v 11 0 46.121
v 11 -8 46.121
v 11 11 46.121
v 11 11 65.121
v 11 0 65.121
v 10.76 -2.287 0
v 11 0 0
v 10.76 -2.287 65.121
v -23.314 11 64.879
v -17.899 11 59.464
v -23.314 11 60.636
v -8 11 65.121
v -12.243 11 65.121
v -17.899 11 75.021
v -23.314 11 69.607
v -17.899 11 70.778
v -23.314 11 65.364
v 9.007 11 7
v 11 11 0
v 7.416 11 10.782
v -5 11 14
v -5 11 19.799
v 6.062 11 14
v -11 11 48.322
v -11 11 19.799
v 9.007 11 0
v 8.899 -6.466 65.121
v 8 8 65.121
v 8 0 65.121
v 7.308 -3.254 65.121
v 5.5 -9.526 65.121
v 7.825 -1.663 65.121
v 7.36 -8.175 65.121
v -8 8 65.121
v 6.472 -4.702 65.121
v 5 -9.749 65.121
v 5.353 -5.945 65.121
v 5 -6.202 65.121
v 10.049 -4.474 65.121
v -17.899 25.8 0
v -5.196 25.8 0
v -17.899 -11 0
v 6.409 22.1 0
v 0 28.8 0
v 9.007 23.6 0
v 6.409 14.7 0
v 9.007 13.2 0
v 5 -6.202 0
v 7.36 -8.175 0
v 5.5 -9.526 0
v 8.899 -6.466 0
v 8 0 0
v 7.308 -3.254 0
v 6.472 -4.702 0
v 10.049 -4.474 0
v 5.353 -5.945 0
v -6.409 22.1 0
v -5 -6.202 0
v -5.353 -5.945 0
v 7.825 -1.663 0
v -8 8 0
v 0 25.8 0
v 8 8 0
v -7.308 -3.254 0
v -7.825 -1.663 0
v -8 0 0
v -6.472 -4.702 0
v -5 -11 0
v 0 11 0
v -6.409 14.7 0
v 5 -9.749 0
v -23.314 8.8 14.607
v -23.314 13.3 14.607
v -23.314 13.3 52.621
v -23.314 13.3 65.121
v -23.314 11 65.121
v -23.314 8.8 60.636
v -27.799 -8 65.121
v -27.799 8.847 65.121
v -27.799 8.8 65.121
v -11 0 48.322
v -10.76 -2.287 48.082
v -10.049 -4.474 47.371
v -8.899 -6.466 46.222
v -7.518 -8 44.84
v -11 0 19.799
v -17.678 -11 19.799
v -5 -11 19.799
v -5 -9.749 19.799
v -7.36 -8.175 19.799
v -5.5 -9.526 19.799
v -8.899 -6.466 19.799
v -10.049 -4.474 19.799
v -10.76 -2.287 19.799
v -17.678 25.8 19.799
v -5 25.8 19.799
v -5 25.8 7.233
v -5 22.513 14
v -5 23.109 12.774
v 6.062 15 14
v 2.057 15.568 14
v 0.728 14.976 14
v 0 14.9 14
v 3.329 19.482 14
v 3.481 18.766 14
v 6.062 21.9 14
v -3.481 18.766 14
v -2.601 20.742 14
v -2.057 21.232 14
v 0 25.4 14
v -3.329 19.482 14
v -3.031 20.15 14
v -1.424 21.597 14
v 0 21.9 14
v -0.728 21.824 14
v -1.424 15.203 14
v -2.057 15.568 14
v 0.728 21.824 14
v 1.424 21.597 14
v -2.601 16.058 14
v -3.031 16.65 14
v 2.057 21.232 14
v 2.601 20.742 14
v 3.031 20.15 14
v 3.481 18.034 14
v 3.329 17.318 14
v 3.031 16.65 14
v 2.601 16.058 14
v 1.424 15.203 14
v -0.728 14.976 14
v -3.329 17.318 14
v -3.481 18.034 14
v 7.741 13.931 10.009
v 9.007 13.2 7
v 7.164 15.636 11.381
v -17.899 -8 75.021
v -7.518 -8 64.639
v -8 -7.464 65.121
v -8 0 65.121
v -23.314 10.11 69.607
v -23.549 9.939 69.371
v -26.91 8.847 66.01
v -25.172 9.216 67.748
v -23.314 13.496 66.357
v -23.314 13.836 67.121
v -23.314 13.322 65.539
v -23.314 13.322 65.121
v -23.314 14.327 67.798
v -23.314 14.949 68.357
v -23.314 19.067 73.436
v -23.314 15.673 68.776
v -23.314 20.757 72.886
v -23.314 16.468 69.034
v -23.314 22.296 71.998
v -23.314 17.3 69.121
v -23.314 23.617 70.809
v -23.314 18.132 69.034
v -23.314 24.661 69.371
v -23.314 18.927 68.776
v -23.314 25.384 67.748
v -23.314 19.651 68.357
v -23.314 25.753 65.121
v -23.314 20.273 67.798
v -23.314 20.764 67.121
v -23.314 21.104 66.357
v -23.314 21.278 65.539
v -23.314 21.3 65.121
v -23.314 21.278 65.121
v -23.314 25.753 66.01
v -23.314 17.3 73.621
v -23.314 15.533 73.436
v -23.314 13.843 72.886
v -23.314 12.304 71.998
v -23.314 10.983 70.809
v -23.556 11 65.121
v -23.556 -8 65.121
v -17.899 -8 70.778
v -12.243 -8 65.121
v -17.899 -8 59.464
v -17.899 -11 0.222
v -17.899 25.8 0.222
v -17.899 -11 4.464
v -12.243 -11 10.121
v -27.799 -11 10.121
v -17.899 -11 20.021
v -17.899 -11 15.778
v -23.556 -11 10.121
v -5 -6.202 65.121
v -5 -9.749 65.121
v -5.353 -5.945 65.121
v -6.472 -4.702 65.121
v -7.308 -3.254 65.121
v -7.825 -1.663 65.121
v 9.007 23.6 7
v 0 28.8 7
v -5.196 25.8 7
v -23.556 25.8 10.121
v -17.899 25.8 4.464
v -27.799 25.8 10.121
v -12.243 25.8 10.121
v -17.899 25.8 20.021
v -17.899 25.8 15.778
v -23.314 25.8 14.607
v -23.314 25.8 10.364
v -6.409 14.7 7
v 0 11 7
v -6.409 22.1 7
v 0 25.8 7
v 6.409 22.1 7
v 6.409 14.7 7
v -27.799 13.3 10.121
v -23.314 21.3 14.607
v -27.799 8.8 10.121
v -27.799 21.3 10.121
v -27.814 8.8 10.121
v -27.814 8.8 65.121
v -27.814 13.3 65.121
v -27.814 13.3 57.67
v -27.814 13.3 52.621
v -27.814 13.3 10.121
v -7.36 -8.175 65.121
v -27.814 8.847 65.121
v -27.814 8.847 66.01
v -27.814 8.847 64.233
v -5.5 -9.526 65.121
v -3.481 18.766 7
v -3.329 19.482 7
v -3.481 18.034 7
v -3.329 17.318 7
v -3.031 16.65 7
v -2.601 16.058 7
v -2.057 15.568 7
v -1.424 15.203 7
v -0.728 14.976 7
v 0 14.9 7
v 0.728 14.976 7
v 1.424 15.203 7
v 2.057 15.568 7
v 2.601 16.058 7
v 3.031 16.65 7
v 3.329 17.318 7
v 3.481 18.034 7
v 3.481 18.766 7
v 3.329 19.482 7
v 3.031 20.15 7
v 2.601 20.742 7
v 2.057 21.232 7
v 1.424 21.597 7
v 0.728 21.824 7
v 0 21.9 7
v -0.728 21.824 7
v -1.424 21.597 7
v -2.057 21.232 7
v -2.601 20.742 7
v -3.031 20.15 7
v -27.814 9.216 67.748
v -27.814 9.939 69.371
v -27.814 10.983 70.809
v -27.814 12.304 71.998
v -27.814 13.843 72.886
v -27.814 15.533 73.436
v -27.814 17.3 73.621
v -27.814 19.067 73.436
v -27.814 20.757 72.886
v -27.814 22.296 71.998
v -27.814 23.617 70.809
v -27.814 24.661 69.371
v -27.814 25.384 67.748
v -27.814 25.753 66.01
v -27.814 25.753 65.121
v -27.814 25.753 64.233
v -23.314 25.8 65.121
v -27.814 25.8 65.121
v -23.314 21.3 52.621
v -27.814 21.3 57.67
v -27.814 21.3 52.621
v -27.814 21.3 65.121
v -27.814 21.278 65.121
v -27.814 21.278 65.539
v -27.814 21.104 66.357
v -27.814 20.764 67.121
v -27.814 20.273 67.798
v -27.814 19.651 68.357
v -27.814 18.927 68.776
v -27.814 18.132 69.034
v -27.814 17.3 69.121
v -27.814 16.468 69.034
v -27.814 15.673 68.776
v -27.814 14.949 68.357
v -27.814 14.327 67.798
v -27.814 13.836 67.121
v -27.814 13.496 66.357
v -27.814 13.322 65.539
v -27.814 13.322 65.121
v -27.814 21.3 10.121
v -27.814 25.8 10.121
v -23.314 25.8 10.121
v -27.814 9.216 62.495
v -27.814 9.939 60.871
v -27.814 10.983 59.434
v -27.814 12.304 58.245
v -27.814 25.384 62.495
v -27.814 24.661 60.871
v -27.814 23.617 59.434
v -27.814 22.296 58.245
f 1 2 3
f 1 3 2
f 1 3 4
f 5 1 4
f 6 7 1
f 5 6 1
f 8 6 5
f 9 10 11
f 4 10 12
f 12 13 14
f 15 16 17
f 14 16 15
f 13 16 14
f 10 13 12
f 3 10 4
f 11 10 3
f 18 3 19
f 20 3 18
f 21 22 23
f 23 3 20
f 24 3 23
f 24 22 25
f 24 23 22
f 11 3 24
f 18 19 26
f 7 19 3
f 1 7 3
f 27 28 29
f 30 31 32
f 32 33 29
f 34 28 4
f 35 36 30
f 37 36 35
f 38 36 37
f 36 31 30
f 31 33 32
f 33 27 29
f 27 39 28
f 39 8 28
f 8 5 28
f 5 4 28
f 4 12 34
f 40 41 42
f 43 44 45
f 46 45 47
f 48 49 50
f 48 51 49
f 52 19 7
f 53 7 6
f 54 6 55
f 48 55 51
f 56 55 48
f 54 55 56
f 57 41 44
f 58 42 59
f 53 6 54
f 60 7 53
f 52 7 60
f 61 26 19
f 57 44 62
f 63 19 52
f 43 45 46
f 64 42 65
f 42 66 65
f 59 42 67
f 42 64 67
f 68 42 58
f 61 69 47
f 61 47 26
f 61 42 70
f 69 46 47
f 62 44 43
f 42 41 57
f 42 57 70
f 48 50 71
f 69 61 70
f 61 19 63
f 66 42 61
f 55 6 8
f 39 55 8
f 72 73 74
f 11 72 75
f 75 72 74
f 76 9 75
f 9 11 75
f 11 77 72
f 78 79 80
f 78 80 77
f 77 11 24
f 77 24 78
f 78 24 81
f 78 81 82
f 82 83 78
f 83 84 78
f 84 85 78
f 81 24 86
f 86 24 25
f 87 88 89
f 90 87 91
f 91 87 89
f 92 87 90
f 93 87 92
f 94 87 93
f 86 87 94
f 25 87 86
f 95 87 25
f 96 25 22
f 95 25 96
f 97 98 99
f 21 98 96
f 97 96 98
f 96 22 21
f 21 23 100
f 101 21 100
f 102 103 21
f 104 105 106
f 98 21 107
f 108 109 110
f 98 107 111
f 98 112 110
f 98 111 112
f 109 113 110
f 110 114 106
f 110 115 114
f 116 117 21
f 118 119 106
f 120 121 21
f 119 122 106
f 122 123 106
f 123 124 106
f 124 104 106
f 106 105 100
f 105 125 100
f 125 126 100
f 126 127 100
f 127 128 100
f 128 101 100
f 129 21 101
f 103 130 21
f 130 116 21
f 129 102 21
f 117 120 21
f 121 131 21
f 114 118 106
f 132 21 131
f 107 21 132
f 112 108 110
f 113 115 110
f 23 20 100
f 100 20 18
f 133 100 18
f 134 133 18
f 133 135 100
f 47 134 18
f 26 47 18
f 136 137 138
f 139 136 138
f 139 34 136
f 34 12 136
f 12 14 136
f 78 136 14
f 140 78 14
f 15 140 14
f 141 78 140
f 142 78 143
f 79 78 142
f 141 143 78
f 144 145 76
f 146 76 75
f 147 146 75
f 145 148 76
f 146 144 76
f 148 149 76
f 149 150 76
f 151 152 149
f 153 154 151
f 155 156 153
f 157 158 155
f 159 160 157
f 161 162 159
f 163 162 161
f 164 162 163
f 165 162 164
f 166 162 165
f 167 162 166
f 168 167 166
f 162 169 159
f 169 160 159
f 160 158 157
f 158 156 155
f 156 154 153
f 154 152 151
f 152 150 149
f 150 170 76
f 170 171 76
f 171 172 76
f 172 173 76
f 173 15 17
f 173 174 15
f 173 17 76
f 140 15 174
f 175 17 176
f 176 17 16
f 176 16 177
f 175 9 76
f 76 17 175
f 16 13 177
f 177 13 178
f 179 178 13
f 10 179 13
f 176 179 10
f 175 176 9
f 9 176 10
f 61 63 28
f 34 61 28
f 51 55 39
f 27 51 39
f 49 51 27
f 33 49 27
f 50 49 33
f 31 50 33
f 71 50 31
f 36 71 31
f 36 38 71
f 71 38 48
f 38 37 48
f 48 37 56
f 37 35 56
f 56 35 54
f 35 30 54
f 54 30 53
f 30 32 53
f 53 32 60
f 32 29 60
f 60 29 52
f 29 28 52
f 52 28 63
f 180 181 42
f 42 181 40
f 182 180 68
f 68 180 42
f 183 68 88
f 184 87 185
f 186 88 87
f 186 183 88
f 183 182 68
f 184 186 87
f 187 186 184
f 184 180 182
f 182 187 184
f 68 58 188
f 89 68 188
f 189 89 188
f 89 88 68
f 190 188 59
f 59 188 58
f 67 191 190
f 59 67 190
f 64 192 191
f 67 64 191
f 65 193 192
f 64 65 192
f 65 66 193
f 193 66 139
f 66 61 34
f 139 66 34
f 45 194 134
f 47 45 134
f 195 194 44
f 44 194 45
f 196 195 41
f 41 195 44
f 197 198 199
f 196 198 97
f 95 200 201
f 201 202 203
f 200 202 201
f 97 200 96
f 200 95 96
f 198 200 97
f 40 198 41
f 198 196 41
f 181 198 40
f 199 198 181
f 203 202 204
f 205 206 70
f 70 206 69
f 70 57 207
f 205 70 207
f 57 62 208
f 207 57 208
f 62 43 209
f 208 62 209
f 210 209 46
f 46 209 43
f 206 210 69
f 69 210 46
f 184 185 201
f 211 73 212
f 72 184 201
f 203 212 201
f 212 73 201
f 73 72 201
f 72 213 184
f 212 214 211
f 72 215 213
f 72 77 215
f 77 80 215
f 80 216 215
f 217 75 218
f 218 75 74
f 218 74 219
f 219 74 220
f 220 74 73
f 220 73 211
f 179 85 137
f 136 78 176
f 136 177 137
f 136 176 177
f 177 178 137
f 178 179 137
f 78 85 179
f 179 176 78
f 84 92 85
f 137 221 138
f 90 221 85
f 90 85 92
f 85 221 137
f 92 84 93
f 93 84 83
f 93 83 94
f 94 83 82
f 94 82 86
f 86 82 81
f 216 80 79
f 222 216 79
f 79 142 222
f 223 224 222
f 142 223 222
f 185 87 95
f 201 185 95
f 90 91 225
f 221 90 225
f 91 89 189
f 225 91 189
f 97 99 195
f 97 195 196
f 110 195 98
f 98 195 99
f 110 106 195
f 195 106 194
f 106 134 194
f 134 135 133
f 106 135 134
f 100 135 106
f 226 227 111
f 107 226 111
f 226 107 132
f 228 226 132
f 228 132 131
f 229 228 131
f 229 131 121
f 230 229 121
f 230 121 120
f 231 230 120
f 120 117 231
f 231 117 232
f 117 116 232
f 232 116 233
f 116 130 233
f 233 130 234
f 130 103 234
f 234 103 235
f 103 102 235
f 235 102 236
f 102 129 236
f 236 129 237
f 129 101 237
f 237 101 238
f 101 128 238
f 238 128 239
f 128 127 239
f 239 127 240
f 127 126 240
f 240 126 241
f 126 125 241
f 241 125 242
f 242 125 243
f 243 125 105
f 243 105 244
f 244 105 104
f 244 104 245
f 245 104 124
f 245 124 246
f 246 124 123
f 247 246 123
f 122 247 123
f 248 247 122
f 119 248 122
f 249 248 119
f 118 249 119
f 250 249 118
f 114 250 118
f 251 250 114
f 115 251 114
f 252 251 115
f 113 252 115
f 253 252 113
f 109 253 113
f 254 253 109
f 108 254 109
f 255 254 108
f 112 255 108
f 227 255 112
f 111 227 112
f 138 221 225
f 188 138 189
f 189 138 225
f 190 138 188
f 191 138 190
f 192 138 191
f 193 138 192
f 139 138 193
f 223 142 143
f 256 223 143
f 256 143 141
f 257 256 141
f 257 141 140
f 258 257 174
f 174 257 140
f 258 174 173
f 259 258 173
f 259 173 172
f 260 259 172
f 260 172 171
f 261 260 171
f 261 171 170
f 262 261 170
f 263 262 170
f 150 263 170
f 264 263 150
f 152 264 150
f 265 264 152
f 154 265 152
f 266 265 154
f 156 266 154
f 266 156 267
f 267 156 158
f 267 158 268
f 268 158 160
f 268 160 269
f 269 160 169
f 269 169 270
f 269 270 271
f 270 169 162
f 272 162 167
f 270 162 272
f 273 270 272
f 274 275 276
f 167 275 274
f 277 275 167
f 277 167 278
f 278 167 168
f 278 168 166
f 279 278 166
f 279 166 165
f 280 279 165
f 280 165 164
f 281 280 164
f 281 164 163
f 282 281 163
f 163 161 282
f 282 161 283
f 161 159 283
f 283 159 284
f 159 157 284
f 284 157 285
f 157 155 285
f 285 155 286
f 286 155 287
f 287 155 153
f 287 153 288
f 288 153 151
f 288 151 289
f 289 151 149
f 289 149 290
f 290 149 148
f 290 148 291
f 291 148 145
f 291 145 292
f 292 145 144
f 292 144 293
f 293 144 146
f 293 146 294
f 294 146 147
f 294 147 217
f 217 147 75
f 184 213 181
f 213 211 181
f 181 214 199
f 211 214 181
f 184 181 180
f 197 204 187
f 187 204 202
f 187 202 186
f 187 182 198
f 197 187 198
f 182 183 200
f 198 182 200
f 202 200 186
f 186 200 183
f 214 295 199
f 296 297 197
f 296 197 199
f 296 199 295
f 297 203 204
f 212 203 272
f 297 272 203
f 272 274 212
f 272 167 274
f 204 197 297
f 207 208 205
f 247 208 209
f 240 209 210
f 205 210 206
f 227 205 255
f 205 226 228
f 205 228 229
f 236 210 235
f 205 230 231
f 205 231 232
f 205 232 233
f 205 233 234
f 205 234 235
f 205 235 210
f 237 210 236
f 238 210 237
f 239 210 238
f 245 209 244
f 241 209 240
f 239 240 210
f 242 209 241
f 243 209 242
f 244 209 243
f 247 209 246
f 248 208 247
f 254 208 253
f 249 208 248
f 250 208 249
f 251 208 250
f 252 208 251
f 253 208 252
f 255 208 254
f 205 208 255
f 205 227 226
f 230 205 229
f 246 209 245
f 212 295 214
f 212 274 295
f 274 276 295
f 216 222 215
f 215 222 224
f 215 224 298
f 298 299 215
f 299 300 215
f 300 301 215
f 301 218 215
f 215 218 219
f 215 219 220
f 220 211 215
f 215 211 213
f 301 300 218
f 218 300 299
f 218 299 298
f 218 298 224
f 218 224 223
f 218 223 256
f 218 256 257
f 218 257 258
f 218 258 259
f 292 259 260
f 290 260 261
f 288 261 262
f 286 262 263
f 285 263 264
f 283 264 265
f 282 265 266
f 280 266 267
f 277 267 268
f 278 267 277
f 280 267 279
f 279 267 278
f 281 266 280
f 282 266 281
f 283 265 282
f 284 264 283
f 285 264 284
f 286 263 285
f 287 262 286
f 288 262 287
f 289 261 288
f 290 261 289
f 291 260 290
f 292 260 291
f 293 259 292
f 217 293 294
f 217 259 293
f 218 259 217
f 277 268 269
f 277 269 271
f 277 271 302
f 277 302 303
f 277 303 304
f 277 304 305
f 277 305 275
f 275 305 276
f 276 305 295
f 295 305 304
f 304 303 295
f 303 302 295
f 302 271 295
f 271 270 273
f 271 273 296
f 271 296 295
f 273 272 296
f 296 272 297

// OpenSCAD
xrodspacing = 55; //rod spacing center to center
xroddia = 8; //rod diamter
nemasize = 1.7;
znutdia = 14.8;
znuth = 7; //znut height
zroddia = 8;
nutwall = 3; //wall thickness
zbeforetapdia = 7; 
bushingod = 16;
bushingtower =xroddia+nutwall*sin(45)+xrodspacing ;
towergap= 10;
idlerthick = 4.5;
idlerwidth = 4.5;
idlergap = 8;
$fn = 30;
mirror(){
difference(){
	union(){

	//bushingtower
	translate([0,0,0])cylinder(r=bushingod/2+nutwall, h=bushingtower);
	translate([-bushingod/2-nutwall,0,0])cube([bushingod+nutwall*2,bushingod/2+nutwall,bushingtower]);

	//x rods
	translate([bushingod/2,-bushingod/2-nutwall,xroddia+nutwall*sin(45)])rotate([0,45,0])cube([xroddia+nutwall*2,bushingod+nutwall*2+znutdia,xroddia+nutwall*2]);
	translate([towergap/2,-bushingod/2-nutwall,0])cube([bushingod/2+nutwall/sin(45)+xroddia*sin(45)-towergap/2,bushingod+nutwall*2+znutdia,(xroddia+nutwall*2)*2*sin(45)]);
	translate([bushingod/2,-bushingod/2,xroddia+nutwall*sin(45)+xrodspacing])rotate([0,45,0])translate([0,0,-(bushingod+nutwall)/sin(45)])cube([xroddia+nutwall*2,bushingod+nutwall,xroddia+nutwall*2+(bushingod+nutwall)/sin(45)]);

	//leadscrew
	translate([0,bushingod/2+znutdia/2+nutwall,znuth])rotate([0,0,30])cylinder(r1=znutdia/2+nutwall, r2=zbeforetapdia, h=znuth, $fn=6);
	translate([0,bushingod/2+zbeforetapdia/2,znuth])rotate([0,0,30])cylinder(r1=znutdia/2+nutwall, r2=zbeforetapdia, h=znuth, $fn=6);
	translate([0,bushingod/2+znutdia/2+nutwall,0])rotate([0,0,30])cylinder(r=znutdia/2+nutwall, h=znuth, $fn=6);
	translate([0,bushingod/2+nutwall,0])rotate([0,0,30])cylinder(r=znutdia/2+nutwall, h=znuth, $fn=6);
	
	//idler slides
	translate([nutwall+bushingod/2+xroddia/sin(45)+1,bushingod/2+nutwall+znutdia-idlerwidth,xroddia+nutwall*sin(45)])cube([idlerthick,idlerwidth,xrodspacing]);	
	translate([nutwall+bushingod/2+xroddia/sin(45)+1,bushingod/2+nutwall+znutdia-idlerwidth*2-idlergap,xroddia+nutwall*sin(45)])cube([idlerthick,idlerwidth,xrodspacing]);	
	translate([nutwall+bushingod/2+xroddia/sin(45)+1,bushingod/2+nutwall+znutdia-idlerwidth-idlergap/2,xroddia+nutwall*sin(45)+xrodspacing])rotate([0,90,0])cylinder(r=idlergap/2+idlerwidth,h=idlerthick);
	
	}
	
	//bushing holder
	translate([0,0,0])cylinder(r=bushingod/2, h=bushingtower);
	translate([-bushingod/2,0,0])cube([bushingod,bushingod/2,bushingtower]);
	translate([-towergap/2,-bushingod,0])cube([towergap,bushingod,bushingtower]);

	//XRODS
	translate([nutwall/sin(45)+bushingod/2,-bushingod/2-nutwall,xroddia+nutwall*sin(45)])rotate([0,45,0])cube([xroddia,bushingod+nutwall*2+znutdia,xroddia]);
	translate([nutwall/sin(45)+bushingod/2,-bushingod/2-nutwall,xroddia+nutwall*sin(45)+xrodspacing])rotate([0,45,0])cube([xroddia,bushingod+nutwall*2,xroddia]);
	
	//overflow clean up
	difference(){
		translate([-bushingod/2-nutwall,-bushingod/2-nutwall,0])cube([bushingod/2+nutwall,bushingod/2+nutwall,bushingtower]);
		cylinder(r=bushingod/2+nutwall,h=bushingtower);	
		}	

	//idler sides
	translate([nutwall+bushingod/2+xroddia/sin(45)+1,bushingod/2+nutwall+znutdia-idlerwidth-idlergap/2,xroddia+nutwall*sin(45)+xrodspacing])rotate([0,90,0])cylinder(r=idlergap/2,h=idlerthick);
	translate([nutwall+bushingod/2+xroddia/sin(45),bushingod/2+nutwall+znutdia-idlerwidth-idlergap,xroddia+nutwall*sin(45)+xrodspacing-idlergap-idlerwidth])cube([idlerthick+2,idlergap,idlergap+idlerwidth]);	
	
	//leadscrew
	translate([0,bushingod/2+znutdia/2+nutwall,0])rotate([0,0,30])cylinder(r=znutdia/2, h=znuth, $fn=6);
	translate([0,bushingod/2+znutdia/2+nutwall,znuth])rotate([0,0,30])cylinder(r=zbeforetapdia/2, h=znuth);
		
}
}
